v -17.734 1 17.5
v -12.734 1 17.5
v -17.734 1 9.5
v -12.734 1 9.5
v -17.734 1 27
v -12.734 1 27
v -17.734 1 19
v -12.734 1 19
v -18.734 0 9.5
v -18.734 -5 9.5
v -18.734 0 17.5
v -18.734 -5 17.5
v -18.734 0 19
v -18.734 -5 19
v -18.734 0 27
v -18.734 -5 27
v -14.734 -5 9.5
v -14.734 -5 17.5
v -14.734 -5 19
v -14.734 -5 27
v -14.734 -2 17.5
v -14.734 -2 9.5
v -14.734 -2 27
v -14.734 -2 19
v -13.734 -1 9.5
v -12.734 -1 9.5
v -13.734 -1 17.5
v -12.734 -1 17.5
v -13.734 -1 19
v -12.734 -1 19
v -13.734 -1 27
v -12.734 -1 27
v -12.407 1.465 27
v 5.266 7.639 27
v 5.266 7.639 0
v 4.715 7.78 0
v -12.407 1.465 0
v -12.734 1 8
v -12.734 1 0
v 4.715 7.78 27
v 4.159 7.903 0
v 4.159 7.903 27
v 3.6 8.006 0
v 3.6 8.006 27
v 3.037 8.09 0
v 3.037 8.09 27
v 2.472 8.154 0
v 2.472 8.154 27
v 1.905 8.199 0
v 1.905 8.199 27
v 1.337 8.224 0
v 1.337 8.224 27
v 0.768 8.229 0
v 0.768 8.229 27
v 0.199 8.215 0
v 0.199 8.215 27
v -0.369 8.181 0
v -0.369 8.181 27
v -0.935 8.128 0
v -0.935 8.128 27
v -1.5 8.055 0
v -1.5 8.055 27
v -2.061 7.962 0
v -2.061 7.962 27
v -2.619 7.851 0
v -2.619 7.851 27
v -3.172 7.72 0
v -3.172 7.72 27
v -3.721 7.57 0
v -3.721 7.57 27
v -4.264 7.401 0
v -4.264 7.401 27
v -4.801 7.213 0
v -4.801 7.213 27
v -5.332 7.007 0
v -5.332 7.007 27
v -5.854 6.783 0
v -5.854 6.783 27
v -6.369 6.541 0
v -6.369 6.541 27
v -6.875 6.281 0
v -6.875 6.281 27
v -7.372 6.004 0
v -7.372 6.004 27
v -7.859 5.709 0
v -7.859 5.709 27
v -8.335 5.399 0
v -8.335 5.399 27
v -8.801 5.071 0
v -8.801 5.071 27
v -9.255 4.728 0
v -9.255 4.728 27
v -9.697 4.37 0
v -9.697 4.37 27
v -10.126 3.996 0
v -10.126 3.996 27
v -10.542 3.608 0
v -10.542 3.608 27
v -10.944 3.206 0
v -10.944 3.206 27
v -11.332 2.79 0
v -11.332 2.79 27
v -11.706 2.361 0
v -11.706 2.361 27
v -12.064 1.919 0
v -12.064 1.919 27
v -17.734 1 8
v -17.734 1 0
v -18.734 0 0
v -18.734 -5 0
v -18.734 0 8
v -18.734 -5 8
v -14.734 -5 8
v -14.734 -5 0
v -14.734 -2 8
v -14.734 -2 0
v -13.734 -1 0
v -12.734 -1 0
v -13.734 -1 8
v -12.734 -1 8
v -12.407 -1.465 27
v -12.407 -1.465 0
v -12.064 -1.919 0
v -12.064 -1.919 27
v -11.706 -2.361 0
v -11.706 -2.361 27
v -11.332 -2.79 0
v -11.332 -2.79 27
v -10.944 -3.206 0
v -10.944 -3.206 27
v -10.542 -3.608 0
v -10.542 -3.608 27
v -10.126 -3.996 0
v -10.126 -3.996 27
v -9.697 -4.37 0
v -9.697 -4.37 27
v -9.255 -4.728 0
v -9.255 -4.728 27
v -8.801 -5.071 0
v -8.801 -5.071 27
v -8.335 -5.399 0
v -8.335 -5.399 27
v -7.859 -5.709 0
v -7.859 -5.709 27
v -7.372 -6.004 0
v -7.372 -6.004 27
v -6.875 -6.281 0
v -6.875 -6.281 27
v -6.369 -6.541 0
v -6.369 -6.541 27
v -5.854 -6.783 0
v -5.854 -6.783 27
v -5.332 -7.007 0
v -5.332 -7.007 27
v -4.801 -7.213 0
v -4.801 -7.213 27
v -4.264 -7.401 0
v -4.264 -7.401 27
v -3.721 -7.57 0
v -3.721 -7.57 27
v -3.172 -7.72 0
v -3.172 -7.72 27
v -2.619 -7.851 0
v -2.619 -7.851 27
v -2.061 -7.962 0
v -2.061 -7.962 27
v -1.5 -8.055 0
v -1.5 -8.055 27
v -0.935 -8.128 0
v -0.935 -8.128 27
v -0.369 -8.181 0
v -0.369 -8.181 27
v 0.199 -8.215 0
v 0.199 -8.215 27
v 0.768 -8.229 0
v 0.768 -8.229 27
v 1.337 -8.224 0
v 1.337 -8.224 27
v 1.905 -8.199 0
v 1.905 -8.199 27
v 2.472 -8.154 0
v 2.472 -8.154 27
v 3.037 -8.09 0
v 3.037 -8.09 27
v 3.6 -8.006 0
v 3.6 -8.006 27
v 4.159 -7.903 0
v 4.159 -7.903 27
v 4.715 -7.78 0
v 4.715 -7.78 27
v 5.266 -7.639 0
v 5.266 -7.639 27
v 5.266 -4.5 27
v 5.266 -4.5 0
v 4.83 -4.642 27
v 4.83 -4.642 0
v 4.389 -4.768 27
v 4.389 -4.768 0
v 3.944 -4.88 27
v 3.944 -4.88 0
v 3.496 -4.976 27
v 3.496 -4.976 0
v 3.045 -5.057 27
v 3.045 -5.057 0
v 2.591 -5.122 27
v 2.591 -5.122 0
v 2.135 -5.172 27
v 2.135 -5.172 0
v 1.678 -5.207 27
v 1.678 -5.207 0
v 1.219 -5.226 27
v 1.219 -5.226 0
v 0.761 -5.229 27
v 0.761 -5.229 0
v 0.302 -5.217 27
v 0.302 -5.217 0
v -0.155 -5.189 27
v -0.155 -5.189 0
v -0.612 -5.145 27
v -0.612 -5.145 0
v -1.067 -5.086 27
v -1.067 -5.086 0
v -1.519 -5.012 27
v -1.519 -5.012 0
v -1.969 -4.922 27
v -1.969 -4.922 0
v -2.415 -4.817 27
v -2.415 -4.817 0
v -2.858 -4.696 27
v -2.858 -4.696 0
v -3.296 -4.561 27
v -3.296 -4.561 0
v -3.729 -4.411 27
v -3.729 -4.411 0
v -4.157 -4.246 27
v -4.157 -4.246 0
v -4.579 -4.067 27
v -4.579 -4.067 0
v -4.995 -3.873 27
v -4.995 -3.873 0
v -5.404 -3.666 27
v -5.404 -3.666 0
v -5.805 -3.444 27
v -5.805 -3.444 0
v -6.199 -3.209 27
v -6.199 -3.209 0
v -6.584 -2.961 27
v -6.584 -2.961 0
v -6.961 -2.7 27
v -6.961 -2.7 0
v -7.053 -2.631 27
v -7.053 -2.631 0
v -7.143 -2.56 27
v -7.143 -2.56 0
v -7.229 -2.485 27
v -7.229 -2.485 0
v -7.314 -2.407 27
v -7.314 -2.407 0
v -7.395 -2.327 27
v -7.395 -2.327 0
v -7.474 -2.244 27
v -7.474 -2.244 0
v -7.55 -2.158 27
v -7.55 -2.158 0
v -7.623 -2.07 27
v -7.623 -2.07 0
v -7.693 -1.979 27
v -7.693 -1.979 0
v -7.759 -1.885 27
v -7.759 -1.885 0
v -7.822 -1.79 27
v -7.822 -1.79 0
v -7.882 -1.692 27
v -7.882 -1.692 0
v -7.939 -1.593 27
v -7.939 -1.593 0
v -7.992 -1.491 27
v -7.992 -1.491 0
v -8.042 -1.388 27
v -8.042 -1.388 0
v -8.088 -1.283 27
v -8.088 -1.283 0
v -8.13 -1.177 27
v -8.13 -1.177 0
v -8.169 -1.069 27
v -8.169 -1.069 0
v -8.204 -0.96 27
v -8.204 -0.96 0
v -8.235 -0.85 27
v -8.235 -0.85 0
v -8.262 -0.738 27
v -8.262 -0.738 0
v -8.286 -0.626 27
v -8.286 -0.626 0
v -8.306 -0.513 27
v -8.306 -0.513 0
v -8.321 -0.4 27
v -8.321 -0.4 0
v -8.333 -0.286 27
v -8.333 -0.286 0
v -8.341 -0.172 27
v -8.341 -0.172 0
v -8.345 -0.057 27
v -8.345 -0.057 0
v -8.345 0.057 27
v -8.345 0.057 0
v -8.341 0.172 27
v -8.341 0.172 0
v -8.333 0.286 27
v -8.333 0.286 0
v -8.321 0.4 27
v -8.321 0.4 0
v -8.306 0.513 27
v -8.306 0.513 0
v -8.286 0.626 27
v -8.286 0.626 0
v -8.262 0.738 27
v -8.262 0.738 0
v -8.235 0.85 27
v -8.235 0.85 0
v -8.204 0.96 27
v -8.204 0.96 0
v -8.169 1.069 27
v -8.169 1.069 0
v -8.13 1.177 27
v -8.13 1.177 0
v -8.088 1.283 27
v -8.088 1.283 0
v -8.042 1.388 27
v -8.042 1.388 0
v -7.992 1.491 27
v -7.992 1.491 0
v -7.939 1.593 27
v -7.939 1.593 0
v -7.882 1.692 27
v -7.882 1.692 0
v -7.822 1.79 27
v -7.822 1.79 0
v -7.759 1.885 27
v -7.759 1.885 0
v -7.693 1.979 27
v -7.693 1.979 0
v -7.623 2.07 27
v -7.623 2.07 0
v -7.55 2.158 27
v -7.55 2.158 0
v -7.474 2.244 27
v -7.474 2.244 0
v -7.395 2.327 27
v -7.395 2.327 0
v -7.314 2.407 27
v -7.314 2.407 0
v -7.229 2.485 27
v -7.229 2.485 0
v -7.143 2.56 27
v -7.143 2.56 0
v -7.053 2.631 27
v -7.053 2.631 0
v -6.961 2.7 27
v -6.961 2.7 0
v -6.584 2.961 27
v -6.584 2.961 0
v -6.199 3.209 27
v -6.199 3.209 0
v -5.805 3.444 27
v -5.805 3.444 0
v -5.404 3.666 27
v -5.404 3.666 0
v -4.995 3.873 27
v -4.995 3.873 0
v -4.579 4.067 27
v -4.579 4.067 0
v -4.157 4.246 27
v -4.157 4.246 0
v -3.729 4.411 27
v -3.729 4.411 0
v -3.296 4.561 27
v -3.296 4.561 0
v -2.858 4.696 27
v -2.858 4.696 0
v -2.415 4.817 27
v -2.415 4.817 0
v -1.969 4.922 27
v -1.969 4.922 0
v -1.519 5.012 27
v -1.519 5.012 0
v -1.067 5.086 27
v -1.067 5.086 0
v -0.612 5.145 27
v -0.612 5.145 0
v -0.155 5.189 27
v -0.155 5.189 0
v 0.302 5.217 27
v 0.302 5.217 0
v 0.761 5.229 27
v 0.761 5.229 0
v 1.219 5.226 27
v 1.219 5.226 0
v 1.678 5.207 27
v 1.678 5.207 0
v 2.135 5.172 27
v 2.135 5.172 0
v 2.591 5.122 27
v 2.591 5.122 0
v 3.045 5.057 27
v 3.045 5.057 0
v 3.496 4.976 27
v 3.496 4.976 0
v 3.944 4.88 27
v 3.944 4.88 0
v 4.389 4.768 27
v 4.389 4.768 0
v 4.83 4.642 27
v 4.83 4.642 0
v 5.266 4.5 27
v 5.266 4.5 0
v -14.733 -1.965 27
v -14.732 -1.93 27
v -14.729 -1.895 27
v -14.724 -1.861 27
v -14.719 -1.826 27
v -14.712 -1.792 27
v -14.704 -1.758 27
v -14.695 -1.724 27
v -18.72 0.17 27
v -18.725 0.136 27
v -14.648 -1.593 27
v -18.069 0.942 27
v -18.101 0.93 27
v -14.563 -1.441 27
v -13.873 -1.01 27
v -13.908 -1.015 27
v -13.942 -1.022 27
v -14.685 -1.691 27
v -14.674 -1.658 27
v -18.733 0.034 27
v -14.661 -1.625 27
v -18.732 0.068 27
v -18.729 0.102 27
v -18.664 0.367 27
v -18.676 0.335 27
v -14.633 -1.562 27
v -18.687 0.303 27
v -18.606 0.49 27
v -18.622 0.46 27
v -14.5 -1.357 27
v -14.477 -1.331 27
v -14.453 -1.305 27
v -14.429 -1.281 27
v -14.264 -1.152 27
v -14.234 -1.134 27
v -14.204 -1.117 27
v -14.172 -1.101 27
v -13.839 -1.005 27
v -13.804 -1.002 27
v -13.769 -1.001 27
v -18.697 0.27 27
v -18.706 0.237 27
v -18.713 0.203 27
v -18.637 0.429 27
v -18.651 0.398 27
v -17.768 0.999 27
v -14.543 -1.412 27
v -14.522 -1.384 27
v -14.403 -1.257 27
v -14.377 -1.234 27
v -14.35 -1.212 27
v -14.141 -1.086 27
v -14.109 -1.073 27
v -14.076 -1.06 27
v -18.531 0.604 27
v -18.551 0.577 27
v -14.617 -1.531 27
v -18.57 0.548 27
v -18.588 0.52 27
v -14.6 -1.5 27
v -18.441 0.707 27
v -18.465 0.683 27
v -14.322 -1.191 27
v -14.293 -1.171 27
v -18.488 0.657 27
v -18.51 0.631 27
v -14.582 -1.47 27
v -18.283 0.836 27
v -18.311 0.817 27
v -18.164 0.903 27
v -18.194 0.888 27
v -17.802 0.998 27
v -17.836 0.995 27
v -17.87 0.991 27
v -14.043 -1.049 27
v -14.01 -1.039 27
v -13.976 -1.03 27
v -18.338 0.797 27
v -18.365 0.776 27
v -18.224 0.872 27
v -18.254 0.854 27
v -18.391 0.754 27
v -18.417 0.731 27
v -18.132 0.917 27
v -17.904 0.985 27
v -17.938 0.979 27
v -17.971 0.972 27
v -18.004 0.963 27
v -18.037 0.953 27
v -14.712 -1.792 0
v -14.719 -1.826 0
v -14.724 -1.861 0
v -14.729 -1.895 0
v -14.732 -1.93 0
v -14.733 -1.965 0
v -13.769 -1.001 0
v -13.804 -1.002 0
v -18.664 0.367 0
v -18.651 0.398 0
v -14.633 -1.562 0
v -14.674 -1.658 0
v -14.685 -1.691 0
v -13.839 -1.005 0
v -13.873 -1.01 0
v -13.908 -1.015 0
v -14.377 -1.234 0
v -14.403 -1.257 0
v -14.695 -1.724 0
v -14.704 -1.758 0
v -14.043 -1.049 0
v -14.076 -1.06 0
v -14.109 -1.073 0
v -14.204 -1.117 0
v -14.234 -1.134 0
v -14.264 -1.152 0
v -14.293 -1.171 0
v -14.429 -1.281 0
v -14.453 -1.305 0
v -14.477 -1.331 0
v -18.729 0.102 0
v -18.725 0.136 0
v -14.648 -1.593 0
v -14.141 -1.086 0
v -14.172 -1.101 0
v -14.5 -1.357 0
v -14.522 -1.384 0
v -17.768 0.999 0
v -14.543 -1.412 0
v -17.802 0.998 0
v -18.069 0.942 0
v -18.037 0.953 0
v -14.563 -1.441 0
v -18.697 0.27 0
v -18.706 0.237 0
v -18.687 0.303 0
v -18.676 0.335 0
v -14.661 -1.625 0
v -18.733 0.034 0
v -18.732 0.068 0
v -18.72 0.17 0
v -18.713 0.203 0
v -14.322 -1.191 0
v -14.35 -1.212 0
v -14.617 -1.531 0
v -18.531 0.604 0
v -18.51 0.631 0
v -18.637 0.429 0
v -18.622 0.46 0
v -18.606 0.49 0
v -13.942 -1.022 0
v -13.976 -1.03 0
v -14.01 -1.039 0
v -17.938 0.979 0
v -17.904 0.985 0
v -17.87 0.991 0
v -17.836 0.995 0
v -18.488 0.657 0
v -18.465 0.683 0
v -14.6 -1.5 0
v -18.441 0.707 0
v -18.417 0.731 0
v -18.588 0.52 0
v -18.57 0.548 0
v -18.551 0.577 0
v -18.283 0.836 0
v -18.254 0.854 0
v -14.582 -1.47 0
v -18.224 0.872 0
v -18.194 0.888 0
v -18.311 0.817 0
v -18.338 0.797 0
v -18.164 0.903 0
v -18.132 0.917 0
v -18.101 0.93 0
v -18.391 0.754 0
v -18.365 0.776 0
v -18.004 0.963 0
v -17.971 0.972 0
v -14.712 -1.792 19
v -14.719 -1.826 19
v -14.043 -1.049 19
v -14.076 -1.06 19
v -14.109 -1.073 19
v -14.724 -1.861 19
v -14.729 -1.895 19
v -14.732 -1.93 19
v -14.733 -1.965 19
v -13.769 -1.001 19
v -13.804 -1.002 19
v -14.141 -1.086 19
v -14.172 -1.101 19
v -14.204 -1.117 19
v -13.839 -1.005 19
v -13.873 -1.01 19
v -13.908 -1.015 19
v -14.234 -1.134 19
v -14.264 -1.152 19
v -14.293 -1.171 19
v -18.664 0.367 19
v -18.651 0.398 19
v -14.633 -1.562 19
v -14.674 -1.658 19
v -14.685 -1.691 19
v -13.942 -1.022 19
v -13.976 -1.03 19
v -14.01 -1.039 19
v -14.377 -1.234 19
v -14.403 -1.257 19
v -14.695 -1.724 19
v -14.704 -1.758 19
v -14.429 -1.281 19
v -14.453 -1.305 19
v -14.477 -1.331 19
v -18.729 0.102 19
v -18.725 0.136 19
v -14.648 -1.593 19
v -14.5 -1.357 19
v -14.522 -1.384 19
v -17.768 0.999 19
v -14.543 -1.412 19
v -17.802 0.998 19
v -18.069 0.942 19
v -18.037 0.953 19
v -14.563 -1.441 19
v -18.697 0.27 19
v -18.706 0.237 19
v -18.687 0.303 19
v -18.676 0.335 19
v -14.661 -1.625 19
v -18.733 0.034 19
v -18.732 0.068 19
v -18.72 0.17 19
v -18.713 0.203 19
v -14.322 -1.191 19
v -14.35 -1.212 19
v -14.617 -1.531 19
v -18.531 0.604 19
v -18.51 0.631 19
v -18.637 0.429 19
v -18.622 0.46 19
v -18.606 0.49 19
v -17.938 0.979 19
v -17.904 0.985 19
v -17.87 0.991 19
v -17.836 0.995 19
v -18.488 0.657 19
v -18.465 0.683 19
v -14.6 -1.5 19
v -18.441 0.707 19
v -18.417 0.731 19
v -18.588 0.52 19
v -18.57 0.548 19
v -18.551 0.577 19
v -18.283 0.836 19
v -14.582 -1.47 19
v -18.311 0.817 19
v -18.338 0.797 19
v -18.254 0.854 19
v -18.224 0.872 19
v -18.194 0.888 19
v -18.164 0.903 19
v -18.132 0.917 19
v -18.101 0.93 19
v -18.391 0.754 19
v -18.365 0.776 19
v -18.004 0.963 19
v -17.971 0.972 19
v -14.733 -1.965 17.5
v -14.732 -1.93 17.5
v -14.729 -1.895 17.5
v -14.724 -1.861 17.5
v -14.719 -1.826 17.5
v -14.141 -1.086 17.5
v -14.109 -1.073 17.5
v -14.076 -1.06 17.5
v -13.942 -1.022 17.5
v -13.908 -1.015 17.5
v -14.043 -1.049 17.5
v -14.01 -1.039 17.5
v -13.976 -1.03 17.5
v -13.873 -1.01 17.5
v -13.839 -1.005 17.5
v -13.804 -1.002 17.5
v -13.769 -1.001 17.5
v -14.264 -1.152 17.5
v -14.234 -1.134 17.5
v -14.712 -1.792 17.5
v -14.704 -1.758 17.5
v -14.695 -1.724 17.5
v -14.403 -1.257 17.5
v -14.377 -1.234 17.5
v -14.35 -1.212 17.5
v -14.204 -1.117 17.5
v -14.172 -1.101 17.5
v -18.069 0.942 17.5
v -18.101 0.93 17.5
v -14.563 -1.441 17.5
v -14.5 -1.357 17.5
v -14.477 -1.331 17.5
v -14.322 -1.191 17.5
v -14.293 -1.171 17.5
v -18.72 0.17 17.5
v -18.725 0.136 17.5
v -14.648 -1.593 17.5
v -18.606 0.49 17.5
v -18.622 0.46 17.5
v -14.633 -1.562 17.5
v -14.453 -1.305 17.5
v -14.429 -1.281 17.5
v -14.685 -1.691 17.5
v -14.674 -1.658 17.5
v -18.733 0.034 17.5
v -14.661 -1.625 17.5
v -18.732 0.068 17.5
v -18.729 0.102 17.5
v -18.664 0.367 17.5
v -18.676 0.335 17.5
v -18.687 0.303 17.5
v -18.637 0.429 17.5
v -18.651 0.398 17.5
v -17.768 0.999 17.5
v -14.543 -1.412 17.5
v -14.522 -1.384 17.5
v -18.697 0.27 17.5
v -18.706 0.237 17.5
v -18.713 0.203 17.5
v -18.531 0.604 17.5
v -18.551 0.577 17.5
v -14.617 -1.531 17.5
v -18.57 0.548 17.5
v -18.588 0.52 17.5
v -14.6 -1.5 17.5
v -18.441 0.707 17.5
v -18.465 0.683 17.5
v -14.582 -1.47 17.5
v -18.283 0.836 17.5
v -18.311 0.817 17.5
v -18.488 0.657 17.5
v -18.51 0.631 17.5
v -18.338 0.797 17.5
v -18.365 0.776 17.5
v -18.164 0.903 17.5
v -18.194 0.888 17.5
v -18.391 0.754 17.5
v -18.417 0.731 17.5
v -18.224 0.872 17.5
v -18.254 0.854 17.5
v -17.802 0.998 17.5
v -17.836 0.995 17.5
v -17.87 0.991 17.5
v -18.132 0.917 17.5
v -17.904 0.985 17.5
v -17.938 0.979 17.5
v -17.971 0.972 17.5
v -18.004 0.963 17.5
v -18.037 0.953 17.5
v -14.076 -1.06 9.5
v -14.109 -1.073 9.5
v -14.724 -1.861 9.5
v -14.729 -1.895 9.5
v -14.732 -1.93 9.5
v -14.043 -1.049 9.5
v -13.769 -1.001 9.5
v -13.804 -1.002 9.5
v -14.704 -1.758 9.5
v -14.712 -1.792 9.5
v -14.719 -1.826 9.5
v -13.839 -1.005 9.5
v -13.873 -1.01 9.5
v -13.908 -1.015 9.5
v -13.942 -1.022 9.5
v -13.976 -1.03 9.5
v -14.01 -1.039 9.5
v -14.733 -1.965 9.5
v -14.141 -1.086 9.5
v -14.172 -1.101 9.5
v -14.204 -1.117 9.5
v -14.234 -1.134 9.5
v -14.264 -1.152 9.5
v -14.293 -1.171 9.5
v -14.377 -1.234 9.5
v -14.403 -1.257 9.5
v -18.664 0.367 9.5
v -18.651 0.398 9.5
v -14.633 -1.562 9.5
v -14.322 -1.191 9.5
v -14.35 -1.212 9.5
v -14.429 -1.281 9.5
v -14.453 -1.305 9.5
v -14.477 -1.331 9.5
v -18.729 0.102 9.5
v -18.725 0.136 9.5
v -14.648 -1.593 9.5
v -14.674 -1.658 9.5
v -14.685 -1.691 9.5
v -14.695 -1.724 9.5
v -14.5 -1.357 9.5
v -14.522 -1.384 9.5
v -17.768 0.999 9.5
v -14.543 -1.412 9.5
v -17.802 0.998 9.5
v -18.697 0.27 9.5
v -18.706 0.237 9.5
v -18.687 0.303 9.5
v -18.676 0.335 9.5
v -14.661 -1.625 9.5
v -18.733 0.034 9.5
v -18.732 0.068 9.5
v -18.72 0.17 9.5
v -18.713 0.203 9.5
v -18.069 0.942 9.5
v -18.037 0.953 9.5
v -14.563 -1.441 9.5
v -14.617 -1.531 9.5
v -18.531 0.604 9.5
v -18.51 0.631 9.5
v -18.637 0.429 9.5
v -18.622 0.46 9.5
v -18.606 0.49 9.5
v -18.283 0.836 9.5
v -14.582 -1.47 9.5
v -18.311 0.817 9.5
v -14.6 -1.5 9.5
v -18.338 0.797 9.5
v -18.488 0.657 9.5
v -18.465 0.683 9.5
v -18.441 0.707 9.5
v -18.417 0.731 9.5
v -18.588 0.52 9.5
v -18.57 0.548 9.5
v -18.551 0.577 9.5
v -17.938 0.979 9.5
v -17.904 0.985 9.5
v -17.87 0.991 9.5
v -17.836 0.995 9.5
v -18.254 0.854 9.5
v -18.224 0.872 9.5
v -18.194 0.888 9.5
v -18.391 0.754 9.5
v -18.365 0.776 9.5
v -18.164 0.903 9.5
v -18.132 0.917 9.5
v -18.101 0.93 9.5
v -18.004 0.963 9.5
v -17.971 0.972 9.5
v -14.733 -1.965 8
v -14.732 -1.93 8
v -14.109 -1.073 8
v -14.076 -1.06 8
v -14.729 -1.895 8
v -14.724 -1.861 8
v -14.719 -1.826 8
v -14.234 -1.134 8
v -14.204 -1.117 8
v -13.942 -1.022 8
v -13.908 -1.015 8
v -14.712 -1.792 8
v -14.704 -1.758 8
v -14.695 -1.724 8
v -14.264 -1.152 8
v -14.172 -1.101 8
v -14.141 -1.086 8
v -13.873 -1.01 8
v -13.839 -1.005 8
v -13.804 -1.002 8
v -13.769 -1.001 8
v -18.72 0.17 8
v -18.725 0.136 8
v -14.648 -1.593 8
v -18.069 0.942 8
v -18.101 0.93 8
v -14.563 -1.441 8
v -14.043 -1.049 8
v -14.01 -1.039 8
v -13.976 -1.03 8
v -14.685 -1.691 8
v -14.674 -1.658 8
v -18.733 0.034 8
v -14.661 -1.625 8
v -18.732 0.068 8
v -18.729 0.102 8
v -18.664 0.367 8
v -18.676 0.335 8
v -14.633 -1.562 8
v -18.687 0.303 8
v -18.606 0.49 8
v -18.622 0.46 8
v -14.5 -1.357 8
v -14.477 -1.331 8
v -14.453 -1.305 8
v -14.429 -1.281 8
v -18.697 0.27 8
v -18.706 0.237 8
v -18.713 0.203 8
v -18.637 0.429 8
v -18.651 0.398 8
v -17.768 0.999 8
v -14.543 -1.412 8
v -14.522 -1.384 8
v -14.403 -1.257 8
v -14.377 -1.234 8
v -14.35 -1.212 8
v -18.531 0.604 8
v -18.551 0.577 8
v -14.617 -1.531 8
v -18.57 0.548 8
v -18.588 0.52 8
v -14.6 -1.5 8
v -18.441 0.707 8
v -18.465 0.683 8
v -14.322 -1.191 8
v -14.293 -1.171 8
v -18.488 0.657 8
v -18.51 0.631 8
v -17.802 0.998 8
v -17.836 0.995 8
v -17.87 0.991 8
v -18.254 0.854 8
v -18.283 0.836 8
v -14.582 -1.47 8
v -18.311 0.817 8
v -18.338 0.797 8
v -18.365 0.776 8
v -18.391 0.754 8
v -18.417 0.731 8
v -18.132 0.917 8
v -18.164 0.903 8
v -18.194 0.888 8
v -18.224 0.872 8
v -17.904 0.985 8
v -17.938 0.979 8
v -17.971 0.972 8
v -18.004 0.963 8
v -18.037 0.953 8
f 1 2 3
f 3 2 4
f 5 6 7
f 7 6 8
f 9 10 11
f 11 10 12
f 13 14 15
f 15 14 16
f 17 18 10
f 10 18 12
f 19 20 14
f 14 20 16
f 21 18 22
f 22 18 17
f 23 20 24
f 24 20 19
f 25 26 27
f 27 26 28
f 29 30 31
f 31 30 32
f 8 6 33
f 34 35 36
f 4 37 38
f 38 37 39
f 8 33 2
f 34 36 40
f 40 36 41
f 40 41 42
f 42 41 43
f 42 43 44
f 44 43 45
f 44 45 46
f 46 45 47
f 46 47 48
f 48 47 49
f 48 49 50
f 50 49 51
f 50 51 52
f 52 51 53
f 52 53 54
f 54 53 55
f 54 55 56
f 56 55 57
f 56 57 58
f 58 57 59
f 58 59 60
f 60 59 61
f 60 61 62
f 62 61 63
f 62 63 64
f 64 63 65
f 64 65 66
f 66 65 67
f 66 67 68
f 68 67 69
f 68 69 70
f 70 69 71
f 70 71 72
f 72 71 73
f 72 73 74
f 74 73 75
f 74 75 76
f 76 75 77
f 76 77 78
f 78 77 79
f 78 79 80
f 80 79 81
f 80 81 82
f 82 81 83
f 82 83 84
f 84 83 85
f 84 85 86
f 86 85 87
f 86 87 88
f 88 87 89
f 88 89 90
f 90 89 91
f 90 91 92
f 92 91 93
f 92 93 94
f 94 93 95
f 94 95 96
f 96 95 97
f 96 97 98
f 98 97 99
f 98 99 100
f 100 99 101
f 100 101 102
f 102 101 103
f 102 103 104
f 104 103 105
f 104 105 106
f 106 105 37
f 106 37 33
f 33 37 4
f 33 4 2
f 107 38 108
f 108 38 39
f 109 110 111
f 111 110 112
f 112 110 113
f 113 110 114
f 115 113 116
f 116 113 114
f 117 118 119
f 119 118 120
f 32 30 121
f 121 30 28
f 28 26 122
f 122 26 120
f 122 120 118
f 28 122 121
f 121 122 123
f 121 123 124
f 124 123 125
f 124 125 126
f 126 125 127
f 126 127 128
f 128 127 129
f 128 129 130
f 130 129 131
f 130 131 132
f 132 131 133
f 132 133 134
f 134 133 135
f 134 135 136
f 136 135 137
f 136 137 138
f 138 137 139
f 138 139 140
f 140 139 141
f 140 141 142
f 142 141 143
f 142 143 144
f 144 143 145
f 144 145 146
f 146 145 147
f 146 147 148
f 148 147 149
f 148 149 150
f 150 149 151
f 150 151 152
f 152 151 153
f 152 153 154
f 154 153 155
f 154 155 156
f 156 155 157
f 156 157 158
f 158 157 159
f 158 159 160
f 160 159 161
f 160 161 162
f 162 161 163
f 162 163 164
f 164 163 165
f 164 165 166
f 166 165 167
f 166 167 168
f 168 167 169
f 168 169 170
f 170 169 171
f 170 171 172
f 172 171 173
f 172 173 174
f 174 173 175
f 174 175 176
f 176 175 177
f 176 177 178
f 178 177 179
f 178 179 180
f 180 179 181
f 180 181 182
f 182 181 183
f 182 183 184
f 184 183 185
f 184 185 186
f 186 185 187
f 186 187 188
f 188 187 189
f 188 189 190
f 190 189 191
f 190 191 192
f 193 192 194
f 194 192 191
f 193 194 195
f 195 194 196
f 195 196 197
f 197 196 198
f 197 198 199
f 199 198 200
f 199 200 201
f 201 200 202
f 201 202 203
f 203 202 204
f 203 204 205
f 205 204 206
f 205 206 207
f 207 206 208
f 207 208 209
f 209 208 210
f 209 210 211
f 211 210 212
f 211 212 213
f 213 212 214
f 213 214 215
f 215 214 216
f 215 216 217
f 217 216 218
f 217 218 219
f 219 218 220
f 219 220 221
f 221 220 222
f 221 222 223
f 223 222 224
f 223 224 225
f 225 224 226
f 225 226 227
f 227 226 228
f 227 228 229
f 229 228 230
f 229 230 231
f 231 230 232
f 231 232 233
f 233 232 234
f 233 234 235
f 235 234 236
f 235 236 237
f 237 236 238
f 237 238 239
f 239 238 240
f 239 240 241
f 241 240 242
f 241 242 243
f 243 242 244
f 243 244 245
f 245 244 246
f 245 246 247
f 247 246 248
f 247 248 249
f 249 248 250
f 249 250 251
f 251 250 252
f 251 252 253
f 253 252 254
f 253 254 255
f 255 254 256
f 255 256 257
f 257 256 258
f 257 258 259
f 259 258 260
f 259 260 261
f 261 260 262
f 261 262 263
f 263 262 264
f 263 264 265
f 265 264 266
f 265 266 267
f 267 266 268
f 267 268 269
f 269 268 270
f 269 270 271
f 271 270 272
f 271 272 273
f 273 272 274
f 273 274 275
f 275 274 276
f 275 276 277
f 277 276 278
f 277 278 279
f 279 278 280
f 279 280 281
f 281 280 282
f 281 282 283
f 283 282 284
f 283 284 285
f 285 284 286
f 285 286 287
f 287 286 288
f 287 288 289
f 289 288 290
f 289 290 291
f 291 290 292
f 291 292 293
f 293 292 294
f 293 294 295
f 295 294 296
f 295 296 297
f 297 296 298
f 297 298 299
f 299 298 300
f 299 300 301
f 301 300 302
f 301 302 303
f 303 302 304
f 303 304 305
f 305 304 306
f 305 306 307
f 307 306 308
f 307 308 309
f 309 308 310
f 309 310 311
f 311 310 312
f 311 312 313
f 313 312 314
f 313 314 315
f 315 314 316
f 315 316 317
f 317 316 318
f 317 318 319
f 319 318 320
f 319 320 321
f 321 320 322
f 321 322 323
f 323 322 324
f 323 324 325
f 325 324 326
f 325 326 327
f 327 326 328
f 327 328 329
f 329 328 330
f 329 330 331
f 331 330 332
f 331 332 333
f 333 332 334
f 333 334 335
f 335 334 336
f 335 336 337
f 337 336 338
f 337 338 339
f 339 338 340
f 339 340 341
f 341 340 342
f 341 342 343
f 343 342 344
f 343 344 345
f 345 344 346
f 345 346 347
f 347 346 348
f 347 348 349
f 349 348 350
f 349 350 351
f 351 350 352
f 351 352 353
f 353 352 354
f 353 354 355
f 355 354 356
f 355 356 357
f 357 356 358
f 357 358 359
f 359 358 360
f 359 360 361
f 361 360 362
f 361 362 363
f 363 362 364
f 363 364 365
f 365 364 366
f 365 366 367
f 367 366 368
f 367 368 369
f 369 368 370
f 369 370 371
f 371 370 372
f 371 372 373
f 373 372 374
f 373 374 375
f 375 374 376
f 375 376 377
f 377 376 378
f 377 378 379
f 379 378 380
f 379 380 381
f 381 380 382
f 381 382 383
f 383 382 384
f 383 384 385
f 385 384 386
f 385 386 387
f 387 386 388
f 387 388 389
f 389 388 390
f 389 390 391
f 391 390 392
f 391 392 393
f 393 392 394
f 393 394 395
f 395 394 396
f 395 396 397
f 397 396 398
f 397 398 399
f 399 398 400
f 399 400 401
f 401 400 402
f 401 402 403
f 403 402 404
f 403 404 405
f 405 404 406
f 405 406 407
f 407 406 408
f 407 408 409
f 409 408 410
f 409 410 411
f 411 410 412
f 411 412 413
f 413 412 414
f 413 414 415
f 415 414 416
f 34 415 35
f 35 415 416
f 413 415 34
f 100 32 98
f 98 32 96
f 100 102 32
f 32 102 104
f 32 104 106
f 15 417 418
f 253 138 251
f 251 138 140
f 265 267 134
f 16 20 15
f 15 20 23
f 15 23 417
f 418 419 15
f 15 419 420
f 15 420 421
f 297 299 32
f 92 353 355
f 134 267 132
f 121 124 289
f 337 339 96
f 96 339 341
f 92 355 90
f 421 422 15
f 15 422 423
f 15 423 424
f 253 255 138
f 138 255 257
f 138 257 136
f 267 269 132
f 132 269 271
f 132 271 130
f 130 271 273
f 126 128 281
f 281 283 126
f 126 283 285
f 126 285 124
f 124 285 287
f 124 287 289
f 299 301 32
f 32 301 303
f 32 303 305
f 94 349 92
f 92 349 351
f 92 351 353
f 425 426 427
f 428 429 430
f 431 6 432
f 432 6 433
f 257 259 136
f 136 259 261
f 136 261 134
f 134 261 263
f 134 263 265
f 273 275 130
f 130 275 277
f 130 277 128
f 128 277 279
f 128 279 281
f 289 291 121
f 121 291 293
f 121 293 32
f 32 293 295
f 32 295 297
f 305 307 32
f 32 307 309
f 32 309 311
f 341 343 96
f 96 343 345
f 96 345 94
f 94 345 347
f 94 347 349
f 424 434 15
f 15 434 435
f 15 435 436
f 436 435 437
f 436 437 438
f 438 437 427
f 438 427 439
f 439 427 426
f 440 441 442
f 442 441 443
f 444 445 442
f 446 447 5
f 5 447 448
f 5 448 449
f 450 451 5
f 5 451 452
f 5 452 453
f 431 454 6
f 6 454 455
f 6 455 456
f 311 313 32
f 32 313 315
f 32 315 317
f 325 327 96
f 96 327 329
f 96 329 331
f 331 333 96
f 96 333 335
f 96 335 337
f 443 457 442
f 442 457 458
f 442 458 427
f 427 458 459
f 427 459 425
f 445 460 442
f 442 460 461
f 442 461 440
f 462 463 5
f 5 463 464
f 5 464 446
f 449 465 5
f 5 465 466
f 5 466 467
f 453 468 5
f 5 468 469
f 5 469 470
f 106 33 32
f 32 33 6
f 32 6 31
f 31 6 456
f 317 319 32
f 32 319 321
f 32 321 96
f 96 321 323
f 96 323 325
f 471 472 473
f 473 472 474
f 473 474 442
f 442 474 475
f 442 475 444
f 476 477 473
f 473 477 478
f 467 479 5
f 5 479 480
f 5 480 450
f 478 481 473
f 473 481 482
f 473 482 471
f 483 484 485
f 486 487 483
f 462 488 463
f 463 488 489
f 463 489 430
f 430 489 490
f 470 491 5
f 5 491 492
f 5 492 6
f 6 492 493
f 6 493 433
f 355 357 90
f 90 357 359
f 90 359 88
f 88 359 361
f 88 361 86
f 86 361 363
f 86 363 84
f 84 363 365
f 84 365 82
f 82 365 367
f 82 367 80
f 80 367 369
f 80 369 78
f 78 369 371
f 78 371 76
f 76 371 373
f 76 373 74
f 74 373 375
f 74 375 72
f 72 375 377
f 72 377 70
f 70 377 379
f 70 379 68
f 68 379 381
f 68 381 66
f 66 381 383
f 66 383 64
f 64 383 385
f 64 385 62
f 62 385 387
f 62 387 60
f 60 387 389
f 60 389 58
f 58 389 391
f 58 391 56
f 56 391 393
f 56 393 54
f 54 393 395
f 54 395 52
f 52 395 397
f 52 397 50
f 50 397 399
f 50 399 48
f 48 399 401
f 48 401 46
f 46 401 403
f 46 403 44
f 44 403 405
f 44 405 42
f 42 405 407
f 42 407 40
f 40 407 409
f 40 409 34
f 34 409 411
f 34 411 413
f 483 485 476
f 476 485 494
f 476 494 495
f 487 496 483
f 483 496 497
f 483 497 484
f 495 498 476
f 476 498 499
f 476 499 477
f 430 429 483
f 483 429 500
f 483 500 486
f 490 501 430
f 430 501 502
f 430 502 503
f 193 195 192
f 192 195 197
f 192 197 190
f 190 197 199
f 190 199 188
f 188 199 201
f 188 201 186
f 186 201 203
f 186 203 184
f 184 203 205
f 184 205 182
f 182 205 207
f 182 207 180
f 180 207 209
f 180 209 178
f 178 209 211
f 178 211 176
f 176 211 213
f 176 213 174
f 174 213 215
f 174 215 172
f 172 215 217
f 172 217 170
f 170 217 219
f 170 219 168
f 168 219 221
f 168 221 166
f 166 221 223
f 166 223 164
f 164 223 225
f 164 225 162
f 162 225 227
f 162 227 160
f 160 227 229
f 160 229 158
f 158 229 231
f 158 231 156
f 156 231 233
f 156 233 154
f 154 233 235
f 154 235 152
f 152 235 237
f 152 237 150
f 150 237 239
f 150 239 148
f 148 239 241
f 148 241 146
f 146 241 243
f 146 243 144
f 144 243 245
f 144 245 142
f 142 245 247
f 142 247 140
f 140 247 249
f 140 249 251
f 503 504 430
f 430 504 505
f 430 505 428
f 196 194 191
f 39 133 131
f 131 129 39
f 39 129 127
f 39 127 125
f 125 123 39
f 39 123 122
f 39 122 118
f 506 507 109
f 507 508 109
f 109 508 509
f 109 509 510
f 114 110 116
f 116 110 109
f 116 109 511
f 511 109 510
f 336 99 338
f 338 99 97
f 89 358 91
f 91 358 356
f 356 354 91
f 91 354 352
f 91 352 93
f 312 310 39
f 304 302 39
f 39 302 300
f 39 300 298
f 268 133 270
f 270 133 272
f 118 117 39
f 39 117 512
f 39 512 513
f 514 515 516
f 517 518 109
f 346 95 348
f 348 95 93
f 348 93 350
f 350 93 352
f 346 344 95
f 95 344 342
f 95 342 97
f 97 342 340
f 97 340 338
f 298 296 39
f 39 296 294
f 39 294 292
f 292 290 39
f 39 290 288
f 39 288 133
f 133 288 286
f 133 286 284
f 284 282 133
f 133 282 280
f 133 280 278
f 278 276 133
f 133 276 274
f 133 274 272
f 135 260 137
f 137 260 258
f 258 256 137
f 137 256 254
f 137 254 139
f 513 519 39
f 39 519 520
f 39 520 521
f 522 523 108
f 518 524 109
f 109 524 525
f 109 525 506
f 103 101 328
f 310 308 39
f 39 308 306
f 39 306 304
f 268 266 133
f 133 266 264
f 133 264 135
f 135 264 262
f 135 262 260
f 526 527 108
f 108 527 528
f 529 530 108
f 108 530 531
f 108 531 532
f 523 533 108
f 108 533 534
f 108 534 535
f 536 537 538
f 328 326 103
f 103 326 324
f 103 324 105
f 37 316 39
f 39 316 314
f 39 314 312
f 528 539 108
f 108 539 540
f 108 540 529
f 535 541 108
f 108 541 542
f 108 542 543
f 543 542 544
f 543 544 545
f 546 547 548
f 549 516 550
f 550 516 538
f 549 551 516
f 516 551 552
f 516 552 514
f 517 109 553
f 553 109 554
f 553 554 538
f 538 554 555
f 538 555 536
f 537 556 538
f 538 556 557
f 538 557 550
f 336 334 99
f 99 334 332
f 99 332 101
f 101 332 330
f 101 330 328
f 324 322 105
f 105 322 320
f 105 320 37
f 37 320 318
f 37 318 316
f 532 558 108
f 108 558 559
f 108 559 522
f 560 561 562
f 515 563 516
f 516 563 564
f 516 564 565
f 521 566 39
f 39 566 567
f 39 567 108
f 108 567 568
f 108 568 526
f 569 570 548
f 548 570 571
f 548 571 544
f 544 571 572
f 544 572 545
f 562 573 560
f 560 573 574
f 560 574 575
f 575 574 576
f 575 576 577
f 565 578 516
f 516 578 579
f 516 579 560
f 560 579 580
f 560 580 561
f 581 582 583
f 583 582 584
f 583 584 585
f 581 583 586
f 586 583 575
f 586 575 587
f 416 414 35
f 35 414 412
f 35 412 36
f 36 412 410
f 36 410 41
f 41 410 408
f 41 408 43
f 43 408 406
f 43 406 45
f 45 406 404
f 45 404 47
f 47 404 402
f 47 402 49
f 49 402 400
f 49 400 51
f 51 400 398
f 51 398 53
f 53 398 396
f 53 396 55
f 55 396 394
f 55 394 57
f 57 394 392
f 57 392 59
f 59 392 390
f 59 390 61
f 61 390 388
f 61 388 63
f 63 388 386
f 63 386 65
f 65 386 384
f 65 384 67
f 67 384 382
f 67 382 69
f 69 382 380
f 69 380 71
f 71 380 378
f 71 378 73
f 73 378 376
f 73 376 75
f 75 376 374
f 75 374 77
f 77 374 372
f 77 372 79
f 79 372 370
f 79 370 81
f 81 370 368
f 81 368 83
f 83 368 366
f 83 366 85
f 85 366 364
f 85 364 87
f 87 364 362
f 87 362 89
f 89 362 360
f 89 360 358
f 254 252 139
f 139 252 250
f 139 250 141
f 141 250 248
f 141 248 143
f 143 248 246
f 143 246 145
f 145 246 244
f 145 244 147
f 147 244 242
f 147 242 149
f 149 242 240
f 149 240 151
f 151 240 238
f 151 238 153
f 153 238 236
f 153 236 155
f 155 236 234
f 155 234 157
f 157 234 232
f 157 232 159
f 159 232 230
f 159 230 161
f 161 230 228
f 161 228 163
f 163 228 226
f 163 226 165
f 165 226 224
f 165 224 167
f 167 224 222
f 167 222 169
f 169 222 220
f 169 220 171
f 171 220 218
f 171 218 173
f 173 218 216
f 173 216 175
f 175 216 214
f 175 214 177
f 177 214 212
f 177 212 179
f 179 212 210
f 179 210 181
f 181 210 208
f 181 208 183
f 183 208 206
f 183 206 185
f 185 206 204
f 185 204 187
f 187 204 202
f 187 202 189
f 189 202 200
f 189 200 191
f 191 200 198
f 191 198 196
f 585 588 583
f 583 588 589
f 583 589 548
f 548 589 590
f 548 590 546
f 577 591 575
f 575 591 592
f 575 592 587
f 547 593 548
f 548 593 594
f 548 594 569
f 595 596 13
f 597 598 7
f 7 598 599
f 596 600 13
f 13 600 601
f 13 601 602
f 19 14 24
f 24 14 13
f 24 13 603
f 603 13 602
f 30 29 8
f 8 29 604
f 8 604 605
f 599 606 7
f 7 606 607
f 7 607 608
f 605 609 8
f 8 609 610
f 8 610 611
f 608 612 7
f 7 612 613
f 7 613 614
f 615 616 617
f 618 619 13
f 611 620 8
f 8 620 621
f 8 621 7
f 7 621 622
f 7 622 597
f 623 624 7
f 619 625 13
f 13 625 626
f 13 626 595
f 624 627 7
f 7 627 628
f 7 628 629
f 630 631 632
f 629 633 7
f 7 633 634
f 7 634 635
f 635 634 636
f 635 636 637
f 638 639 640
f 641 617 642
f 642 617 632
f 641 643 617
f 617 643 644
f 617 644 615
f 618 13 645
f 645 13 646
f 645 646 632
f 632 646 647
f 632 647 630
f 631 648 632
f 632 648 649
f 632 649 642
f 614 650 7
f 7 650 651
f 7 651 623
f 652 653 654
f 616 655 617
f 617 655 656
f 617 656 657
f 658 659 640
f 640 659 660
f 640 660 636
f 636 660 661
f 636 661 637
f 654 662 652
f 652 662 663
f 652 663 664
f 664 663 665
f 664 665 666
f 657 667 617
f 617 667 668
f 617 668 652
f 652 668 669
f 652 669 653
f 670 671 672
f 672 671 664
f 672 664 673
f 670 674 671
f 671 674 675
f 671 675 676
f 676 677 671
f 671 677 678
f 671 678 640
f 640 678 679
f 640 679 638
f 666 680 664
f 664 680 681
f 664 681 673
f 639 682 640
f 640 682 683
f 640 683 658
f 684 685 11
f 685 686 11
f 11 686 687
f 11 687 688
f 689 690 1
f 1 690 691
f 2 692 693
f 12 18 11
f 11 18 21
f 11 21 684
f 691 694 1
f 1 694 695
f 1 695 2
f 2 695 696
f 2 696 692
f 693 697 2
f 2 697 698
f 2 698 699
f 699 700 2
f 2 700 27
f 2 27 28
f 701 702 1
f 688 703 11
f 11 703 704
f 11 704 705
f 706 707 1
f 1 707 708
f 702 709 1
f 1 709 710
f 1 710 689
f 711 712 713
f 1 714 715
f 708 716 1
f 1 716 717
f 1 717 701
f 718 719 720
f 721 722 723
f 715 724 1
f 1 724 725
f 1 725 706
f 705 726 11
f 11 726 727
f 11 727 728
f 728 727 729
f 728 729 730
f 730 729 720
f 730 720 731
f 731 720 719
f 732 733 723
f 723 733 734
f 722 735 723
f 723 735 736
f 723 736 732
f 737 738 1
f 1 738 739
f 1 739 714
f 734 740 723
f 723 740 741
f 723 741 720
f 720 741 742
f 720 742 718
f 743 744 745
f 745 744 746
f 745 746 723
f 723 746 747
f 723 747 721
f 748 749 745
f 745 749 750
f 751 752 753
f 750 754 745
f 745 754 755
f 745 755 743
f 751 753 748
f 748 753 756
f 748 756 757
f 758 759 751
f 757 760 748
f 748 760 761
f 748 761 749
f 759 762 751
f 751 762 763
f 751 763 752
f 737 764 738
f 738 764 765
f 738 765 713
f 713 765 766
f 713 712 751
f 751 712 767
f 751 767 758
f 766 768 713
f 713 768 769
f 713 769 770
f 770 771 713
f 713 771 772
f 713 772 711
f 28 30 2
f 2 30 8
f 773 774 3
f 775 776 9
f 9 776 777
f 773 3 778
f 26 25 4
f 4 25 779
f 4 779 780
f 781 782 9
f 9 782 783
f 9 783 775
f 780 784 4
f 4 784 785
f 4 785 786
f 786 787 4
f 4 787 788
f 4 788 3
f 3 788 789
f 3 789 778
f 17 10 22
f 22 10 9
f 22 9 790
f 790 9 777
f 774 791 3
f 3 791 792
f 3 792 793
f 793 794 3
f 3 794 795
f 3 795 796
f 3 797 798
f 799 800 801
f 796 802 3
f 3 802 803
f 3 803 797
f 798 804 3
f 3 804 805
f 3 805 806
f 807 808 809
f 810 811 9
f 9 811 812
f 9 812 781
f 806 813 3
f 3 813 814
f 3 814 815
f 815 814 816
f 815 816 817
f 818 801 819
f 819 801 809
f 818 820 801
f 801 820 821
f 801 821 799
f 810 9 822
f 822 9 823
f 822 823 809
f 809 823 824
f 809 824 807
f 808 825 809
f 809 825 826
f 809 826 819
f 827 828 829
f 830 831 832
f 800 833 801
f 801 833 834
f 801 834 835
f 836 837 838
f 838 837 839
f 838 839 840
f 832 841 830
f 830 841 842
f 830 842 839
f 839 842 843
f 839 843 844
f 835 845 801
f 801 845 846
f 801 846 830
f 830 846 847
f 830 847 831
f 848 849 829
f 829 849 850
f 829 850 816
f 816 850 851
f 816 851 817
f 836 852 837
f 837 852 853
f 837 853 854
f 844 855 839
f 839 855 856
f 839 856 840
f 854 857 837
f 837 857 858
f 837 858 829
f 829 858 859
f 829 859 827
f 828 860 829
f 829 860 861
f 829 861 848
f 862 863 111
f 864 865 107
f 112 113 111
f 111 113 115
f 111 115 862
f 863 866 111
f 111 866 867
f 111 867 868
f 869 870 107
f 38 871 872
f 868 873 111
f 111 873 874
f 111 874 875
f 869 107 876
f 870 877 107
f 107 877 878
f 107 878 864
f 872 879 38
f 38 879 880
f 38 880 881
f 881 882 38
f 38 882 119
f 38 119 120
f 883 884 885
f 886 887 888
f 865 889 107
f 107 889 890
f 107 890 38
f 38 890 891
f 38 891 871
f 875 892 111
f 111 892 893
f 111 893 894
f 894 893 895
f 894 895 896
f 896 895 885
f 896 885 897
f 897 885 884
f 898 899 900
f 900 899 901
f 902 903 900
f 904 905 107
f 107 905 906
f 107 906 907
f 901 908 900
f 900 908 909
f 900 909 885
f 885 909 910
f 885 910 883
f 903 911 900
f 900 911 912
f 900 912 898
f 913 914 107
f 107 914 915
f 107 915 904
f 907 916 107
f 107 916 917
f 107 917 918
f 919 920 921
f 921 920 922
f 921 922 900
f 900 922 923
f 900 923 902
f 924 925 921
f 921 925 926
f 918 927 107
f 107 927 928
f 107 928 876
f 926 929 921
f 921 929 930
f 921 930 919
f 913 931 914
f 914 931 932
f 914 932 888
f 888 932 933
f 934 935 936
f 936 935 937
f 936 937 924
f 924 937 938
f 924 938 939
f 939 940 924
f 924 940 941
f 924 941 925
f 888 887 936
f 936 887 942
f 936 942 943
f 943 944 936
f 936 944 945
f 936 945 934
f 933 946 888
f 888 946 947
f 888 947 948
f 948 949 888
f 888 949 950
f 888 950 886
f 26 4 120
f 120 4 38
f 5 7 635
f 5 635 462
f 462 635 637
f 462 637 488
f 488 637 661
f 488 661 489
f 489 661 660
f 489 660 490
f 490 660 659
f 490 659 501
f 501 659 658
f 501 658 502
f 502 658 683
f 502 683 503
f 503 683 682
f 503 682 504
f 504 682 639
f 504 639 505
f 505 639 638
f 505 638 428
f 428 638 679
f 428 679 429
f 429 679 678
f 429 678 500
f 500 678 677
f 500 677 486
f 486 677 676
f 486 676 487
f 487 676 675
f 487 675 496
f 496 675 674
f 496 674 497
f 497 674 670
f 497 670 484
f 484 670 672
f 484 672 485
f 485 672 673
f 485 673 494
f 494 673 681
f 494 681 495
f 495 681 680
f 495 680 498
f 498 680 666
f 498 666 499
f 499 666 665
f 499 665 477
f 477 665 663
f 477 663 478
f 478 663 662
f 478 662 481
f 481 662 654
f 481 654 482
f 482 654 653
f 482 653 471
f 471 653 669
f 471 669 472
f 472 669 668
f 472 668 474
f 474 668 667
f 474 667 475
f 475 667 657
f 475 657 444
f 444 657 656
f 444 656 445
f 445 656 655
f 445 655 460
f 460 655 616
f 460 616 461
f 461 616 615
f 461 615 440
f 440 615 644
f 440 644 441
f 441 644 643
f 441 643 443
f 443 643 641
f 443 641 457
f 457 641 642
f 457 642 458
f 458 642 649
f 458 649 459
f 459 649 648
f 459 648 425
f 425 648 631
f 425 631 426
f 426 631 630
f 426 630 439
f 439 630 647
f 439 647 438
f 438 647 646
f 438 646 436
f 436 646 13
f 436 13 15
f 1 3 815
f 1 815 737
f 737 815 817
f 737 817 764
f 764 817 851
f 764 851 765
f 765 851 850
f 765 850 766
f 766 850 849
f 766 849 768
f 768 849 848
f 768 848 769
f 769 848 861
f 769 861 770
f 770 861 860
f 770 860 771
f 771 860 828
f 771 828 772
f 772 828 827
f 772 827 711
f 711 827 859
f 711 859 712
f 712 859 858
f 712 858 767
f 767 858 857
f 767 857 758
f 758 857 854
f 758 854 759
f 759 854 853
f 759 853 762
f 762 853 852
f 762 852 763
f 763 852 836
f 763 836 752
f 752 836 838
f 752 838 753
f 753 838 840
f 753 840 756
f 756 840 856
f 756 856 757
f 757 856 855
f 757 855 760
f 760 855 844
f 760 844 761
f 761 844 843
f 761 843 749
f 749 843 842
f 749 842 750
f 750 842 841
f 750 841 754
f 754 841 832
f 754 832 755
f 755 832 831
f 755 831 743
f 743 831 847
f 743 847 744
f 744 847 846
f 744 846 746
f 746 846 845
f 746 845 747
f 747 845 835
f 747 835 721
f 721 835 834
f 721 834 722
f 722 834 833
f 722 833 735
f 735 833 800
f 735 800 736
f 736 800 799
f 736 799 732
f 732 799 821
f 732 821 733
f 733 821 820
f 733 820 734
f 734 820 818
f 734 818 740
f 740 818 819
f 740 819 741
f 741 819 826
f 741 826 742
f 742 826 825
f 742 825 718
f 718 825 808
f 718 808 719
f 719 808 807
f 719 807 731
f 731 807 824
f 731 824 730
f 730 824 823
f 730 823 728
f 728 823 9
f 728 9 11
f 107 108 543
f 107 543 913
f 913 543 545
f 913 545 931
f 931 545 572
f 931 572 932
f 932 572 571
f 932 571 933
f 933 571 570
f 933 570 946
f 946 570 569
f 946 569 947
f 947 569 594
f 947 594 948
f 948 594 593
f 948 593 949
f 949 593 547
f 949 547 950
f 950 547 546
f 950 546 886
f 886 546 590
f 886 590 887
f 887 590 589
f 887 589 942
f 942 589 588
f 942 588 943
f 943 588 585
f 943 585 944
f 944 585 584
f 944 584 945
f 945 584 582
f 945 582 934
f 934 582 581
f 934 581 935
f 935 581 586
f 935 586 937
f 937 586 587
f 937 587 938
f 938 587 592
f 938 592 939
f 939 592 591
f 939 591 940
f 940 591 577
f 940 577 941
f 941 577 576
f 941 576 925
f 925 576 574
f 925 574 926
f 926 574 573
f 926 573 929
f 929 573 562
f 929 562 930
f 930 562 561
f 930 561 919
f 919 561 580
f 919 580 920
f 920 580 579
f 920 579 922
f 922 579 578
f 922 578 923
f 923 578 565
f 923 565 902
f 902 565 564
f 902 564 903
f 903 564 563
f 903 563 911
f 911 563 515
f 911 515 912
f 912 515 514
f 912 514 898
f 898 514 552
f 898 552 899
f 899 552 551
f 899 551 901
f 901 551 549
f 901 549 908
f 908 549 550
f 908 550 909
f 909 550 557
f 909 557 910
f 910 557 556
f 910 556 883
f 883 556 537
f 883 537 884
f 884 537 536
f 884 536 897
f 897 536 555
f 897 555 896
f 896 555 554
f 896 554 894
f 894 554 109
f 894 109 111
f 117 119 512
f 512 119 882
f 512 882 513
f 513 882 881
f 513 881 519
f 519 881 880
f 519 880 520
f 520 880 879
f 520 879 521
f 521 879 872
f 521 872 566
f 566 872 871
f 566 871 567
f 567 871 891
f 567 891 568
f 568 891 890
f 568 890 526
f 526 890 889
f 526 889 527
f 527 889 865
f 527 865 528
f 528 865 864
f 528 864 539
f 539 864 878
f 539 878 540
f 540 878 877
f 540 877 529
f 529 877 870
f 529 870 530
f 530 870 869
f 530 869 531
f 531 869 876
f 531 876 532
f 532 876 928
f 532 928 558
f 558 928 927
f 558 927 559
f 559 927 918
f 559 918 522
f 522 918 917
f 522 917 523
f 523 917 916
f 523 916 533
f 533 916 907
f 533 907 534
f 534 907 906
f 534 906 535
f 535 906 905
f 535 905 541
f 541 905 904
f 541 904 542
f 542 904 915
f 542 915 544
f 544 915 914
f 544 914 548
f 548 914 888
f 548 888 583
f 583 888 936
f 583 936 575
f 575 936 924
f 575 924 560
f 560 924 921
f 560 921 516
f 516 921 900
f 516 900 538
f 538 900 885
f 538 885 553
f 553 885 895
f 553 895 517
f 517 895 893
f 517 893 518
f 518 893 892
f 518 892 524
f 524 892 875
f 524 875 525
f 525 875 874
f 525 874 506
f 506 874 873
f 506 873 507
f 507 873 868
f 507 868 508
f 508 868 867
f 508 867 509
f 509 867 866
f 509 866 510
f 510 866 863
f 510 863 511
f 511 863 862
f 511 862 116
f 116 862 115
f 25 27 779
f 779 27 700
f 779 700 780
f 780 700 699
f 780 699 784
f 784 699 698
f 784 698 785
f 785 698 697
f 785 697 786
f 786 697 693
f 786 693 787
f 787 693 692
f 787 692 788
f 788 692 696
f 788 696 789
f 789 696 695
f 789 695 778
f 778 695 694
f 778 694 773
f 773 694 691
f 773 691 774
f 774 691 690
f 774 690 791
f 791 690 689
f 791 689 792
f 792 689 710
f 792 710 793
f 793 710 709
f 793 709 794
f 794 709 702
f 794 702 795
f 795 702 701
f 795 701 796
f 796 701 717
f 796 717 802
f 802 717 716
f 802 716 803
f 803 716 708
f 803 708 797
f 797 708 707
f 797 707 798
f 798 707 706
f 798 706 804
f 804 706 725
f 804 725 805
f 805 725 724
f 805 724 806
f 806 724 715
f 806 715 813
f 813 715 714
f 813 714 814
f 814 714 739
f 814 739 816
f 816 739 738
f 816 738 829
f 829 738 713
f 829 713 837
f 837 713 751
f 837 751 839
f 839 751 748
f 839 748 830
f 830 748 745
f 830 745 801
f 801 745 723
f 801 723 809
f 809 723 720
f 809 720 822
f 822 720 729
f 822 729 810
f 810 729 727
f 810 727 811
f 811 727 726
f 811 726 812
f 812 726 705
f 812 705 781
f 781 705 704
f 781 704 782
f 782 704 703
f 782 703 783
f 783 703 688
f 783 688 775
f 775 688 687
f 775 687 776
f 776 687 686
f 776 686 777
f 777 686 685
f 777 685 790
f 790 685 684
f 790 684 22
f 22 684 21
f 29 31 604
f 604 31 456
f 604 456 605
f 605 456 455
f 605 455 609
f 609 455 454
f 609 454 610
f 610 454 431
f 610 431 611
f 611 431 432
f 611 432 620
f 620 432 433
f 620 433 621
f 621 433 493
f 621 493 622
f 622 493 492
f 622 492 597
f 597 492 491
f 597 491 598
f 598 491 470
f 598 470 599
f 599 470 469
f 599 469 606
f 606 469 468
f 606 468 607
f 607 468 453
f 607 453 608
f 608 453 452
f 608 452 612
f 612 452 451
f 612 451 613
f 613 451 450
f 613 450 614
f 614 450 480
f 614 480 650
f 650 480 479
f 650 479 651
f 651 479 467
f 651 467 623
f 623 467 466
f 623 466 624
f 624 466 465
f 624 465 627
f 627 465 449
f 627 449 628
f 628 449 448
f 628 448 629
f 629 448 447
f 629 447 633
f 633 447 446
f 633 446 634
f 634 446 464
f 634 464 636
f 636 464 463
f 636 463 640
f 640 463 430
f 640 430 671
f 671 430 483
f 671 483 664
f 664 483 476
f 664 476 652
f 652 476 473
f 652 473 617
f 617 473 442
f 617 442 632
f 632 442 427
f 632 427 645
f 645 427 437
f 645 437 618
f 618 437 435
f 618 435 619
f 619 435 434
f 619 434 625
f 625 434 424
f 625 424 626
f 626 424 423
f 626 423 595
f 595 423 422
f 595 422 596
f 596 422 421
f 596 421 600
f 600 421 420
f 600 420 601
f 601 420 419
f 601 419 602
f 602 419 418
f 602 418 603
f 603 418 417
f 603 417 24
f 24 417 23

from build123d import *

# Parameters (mm, degrees)
BOSS_EXTRU_1_DEPTH      = 27
ESQUISSE2_W             = 1.5
ESQUISSE2_H             = 20
ENL_V_MAT_EXTRU_3_DEPTH = 6
CONG_1_R                = 1


with BuildPart() as part:
    # Esquisse1 → Boss.-Extru.1 (new body)
    with BuildSketch(Plane.XY):
        with BuildLine():
            Line((-12.734069529, 1), (-18.734069529, 1))
            Line((-18.734069529, 1), (-18.734069529, -5))
            Line((-18.734069529, -5), (-14.734069529, -5))
            Line((-14.734069529, -5), (-14.734069529, -1))
            Line((-14.734069529, -1), (-12.734069529, -1))
            ThreePointArc((-12.734069529, -1), (-4.80129438, -7.212987875), (5.265930471, -7.638574159))
            Line((5.265930471, -7.638574159), (5.265930471, -4.5))
            ThreePointArc((5.265930471, -4.5), (-1.066525943, -5.086207973), (-6.961264916, -2.69964214))
            ThreePointArc((-6.961264916, -2.69964214), (-8.345527914, 0), (-6.961264916, 2.69964214))
            ThreePointArc((-6.961264916, 2.69964214), (-1.066525943, 5.086207973), (5.265930471, 4.5))
            Line((5.265930471, 4.5), (5.265930471, 7.638574159))
            ThreePointArc((5.265930471, 7.638574159), (-4.80129438, 7.212987875), (-12.734069529, 1))
        make_face()
    extrude(amount=BOSS_EXTRU_1_DEPTH)

    # Esquisse2 → Enlèv. mat.-Extru.3 (cut)
    with BuildSketch(Plane.ZY.offset(18.734069529)):
        with Locations((8.75, 1.023656904)):
            Rectangle(ESQUISSE2_W, ESQUISSE2_H)
        with Locations((18.25, 1)):
            Rectangle(ESQUISSE2_W, ESQUISSE2_H)
    extrude(amount=-ENL_V_MAT_EXTRU_3_DEPTH, mode=Mode.SUBTRACT)

    # Congé1
    cong_1_edges = [part.edges().sort_by_distance(p)[0] for p in [
        (-14.734069529, -1, 23),
        (-18.734069529, 1, 23),
        (-14.734069529, -1, 13.5),
        (-14.734069529, -1, 4),
        (-18.734069529, 1, 13.5),
        (-18.734069529, 1, 4),
    ]]
    fillet(cong_1_edges, radius=CONG_1_R)


solid = part.part
